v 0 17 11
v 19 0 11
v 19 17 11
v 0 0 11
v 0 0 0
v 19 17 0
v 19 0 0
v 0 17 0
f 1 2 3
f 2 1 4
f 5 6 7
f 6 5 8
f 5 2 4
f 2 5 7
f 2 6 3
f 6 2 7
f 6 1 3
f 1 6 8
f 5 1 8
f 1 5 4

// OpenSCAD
module rectangular_box(length, width, height) {
  cube([length, width, height]);
}

rectangular_box(19, 17, 11);
